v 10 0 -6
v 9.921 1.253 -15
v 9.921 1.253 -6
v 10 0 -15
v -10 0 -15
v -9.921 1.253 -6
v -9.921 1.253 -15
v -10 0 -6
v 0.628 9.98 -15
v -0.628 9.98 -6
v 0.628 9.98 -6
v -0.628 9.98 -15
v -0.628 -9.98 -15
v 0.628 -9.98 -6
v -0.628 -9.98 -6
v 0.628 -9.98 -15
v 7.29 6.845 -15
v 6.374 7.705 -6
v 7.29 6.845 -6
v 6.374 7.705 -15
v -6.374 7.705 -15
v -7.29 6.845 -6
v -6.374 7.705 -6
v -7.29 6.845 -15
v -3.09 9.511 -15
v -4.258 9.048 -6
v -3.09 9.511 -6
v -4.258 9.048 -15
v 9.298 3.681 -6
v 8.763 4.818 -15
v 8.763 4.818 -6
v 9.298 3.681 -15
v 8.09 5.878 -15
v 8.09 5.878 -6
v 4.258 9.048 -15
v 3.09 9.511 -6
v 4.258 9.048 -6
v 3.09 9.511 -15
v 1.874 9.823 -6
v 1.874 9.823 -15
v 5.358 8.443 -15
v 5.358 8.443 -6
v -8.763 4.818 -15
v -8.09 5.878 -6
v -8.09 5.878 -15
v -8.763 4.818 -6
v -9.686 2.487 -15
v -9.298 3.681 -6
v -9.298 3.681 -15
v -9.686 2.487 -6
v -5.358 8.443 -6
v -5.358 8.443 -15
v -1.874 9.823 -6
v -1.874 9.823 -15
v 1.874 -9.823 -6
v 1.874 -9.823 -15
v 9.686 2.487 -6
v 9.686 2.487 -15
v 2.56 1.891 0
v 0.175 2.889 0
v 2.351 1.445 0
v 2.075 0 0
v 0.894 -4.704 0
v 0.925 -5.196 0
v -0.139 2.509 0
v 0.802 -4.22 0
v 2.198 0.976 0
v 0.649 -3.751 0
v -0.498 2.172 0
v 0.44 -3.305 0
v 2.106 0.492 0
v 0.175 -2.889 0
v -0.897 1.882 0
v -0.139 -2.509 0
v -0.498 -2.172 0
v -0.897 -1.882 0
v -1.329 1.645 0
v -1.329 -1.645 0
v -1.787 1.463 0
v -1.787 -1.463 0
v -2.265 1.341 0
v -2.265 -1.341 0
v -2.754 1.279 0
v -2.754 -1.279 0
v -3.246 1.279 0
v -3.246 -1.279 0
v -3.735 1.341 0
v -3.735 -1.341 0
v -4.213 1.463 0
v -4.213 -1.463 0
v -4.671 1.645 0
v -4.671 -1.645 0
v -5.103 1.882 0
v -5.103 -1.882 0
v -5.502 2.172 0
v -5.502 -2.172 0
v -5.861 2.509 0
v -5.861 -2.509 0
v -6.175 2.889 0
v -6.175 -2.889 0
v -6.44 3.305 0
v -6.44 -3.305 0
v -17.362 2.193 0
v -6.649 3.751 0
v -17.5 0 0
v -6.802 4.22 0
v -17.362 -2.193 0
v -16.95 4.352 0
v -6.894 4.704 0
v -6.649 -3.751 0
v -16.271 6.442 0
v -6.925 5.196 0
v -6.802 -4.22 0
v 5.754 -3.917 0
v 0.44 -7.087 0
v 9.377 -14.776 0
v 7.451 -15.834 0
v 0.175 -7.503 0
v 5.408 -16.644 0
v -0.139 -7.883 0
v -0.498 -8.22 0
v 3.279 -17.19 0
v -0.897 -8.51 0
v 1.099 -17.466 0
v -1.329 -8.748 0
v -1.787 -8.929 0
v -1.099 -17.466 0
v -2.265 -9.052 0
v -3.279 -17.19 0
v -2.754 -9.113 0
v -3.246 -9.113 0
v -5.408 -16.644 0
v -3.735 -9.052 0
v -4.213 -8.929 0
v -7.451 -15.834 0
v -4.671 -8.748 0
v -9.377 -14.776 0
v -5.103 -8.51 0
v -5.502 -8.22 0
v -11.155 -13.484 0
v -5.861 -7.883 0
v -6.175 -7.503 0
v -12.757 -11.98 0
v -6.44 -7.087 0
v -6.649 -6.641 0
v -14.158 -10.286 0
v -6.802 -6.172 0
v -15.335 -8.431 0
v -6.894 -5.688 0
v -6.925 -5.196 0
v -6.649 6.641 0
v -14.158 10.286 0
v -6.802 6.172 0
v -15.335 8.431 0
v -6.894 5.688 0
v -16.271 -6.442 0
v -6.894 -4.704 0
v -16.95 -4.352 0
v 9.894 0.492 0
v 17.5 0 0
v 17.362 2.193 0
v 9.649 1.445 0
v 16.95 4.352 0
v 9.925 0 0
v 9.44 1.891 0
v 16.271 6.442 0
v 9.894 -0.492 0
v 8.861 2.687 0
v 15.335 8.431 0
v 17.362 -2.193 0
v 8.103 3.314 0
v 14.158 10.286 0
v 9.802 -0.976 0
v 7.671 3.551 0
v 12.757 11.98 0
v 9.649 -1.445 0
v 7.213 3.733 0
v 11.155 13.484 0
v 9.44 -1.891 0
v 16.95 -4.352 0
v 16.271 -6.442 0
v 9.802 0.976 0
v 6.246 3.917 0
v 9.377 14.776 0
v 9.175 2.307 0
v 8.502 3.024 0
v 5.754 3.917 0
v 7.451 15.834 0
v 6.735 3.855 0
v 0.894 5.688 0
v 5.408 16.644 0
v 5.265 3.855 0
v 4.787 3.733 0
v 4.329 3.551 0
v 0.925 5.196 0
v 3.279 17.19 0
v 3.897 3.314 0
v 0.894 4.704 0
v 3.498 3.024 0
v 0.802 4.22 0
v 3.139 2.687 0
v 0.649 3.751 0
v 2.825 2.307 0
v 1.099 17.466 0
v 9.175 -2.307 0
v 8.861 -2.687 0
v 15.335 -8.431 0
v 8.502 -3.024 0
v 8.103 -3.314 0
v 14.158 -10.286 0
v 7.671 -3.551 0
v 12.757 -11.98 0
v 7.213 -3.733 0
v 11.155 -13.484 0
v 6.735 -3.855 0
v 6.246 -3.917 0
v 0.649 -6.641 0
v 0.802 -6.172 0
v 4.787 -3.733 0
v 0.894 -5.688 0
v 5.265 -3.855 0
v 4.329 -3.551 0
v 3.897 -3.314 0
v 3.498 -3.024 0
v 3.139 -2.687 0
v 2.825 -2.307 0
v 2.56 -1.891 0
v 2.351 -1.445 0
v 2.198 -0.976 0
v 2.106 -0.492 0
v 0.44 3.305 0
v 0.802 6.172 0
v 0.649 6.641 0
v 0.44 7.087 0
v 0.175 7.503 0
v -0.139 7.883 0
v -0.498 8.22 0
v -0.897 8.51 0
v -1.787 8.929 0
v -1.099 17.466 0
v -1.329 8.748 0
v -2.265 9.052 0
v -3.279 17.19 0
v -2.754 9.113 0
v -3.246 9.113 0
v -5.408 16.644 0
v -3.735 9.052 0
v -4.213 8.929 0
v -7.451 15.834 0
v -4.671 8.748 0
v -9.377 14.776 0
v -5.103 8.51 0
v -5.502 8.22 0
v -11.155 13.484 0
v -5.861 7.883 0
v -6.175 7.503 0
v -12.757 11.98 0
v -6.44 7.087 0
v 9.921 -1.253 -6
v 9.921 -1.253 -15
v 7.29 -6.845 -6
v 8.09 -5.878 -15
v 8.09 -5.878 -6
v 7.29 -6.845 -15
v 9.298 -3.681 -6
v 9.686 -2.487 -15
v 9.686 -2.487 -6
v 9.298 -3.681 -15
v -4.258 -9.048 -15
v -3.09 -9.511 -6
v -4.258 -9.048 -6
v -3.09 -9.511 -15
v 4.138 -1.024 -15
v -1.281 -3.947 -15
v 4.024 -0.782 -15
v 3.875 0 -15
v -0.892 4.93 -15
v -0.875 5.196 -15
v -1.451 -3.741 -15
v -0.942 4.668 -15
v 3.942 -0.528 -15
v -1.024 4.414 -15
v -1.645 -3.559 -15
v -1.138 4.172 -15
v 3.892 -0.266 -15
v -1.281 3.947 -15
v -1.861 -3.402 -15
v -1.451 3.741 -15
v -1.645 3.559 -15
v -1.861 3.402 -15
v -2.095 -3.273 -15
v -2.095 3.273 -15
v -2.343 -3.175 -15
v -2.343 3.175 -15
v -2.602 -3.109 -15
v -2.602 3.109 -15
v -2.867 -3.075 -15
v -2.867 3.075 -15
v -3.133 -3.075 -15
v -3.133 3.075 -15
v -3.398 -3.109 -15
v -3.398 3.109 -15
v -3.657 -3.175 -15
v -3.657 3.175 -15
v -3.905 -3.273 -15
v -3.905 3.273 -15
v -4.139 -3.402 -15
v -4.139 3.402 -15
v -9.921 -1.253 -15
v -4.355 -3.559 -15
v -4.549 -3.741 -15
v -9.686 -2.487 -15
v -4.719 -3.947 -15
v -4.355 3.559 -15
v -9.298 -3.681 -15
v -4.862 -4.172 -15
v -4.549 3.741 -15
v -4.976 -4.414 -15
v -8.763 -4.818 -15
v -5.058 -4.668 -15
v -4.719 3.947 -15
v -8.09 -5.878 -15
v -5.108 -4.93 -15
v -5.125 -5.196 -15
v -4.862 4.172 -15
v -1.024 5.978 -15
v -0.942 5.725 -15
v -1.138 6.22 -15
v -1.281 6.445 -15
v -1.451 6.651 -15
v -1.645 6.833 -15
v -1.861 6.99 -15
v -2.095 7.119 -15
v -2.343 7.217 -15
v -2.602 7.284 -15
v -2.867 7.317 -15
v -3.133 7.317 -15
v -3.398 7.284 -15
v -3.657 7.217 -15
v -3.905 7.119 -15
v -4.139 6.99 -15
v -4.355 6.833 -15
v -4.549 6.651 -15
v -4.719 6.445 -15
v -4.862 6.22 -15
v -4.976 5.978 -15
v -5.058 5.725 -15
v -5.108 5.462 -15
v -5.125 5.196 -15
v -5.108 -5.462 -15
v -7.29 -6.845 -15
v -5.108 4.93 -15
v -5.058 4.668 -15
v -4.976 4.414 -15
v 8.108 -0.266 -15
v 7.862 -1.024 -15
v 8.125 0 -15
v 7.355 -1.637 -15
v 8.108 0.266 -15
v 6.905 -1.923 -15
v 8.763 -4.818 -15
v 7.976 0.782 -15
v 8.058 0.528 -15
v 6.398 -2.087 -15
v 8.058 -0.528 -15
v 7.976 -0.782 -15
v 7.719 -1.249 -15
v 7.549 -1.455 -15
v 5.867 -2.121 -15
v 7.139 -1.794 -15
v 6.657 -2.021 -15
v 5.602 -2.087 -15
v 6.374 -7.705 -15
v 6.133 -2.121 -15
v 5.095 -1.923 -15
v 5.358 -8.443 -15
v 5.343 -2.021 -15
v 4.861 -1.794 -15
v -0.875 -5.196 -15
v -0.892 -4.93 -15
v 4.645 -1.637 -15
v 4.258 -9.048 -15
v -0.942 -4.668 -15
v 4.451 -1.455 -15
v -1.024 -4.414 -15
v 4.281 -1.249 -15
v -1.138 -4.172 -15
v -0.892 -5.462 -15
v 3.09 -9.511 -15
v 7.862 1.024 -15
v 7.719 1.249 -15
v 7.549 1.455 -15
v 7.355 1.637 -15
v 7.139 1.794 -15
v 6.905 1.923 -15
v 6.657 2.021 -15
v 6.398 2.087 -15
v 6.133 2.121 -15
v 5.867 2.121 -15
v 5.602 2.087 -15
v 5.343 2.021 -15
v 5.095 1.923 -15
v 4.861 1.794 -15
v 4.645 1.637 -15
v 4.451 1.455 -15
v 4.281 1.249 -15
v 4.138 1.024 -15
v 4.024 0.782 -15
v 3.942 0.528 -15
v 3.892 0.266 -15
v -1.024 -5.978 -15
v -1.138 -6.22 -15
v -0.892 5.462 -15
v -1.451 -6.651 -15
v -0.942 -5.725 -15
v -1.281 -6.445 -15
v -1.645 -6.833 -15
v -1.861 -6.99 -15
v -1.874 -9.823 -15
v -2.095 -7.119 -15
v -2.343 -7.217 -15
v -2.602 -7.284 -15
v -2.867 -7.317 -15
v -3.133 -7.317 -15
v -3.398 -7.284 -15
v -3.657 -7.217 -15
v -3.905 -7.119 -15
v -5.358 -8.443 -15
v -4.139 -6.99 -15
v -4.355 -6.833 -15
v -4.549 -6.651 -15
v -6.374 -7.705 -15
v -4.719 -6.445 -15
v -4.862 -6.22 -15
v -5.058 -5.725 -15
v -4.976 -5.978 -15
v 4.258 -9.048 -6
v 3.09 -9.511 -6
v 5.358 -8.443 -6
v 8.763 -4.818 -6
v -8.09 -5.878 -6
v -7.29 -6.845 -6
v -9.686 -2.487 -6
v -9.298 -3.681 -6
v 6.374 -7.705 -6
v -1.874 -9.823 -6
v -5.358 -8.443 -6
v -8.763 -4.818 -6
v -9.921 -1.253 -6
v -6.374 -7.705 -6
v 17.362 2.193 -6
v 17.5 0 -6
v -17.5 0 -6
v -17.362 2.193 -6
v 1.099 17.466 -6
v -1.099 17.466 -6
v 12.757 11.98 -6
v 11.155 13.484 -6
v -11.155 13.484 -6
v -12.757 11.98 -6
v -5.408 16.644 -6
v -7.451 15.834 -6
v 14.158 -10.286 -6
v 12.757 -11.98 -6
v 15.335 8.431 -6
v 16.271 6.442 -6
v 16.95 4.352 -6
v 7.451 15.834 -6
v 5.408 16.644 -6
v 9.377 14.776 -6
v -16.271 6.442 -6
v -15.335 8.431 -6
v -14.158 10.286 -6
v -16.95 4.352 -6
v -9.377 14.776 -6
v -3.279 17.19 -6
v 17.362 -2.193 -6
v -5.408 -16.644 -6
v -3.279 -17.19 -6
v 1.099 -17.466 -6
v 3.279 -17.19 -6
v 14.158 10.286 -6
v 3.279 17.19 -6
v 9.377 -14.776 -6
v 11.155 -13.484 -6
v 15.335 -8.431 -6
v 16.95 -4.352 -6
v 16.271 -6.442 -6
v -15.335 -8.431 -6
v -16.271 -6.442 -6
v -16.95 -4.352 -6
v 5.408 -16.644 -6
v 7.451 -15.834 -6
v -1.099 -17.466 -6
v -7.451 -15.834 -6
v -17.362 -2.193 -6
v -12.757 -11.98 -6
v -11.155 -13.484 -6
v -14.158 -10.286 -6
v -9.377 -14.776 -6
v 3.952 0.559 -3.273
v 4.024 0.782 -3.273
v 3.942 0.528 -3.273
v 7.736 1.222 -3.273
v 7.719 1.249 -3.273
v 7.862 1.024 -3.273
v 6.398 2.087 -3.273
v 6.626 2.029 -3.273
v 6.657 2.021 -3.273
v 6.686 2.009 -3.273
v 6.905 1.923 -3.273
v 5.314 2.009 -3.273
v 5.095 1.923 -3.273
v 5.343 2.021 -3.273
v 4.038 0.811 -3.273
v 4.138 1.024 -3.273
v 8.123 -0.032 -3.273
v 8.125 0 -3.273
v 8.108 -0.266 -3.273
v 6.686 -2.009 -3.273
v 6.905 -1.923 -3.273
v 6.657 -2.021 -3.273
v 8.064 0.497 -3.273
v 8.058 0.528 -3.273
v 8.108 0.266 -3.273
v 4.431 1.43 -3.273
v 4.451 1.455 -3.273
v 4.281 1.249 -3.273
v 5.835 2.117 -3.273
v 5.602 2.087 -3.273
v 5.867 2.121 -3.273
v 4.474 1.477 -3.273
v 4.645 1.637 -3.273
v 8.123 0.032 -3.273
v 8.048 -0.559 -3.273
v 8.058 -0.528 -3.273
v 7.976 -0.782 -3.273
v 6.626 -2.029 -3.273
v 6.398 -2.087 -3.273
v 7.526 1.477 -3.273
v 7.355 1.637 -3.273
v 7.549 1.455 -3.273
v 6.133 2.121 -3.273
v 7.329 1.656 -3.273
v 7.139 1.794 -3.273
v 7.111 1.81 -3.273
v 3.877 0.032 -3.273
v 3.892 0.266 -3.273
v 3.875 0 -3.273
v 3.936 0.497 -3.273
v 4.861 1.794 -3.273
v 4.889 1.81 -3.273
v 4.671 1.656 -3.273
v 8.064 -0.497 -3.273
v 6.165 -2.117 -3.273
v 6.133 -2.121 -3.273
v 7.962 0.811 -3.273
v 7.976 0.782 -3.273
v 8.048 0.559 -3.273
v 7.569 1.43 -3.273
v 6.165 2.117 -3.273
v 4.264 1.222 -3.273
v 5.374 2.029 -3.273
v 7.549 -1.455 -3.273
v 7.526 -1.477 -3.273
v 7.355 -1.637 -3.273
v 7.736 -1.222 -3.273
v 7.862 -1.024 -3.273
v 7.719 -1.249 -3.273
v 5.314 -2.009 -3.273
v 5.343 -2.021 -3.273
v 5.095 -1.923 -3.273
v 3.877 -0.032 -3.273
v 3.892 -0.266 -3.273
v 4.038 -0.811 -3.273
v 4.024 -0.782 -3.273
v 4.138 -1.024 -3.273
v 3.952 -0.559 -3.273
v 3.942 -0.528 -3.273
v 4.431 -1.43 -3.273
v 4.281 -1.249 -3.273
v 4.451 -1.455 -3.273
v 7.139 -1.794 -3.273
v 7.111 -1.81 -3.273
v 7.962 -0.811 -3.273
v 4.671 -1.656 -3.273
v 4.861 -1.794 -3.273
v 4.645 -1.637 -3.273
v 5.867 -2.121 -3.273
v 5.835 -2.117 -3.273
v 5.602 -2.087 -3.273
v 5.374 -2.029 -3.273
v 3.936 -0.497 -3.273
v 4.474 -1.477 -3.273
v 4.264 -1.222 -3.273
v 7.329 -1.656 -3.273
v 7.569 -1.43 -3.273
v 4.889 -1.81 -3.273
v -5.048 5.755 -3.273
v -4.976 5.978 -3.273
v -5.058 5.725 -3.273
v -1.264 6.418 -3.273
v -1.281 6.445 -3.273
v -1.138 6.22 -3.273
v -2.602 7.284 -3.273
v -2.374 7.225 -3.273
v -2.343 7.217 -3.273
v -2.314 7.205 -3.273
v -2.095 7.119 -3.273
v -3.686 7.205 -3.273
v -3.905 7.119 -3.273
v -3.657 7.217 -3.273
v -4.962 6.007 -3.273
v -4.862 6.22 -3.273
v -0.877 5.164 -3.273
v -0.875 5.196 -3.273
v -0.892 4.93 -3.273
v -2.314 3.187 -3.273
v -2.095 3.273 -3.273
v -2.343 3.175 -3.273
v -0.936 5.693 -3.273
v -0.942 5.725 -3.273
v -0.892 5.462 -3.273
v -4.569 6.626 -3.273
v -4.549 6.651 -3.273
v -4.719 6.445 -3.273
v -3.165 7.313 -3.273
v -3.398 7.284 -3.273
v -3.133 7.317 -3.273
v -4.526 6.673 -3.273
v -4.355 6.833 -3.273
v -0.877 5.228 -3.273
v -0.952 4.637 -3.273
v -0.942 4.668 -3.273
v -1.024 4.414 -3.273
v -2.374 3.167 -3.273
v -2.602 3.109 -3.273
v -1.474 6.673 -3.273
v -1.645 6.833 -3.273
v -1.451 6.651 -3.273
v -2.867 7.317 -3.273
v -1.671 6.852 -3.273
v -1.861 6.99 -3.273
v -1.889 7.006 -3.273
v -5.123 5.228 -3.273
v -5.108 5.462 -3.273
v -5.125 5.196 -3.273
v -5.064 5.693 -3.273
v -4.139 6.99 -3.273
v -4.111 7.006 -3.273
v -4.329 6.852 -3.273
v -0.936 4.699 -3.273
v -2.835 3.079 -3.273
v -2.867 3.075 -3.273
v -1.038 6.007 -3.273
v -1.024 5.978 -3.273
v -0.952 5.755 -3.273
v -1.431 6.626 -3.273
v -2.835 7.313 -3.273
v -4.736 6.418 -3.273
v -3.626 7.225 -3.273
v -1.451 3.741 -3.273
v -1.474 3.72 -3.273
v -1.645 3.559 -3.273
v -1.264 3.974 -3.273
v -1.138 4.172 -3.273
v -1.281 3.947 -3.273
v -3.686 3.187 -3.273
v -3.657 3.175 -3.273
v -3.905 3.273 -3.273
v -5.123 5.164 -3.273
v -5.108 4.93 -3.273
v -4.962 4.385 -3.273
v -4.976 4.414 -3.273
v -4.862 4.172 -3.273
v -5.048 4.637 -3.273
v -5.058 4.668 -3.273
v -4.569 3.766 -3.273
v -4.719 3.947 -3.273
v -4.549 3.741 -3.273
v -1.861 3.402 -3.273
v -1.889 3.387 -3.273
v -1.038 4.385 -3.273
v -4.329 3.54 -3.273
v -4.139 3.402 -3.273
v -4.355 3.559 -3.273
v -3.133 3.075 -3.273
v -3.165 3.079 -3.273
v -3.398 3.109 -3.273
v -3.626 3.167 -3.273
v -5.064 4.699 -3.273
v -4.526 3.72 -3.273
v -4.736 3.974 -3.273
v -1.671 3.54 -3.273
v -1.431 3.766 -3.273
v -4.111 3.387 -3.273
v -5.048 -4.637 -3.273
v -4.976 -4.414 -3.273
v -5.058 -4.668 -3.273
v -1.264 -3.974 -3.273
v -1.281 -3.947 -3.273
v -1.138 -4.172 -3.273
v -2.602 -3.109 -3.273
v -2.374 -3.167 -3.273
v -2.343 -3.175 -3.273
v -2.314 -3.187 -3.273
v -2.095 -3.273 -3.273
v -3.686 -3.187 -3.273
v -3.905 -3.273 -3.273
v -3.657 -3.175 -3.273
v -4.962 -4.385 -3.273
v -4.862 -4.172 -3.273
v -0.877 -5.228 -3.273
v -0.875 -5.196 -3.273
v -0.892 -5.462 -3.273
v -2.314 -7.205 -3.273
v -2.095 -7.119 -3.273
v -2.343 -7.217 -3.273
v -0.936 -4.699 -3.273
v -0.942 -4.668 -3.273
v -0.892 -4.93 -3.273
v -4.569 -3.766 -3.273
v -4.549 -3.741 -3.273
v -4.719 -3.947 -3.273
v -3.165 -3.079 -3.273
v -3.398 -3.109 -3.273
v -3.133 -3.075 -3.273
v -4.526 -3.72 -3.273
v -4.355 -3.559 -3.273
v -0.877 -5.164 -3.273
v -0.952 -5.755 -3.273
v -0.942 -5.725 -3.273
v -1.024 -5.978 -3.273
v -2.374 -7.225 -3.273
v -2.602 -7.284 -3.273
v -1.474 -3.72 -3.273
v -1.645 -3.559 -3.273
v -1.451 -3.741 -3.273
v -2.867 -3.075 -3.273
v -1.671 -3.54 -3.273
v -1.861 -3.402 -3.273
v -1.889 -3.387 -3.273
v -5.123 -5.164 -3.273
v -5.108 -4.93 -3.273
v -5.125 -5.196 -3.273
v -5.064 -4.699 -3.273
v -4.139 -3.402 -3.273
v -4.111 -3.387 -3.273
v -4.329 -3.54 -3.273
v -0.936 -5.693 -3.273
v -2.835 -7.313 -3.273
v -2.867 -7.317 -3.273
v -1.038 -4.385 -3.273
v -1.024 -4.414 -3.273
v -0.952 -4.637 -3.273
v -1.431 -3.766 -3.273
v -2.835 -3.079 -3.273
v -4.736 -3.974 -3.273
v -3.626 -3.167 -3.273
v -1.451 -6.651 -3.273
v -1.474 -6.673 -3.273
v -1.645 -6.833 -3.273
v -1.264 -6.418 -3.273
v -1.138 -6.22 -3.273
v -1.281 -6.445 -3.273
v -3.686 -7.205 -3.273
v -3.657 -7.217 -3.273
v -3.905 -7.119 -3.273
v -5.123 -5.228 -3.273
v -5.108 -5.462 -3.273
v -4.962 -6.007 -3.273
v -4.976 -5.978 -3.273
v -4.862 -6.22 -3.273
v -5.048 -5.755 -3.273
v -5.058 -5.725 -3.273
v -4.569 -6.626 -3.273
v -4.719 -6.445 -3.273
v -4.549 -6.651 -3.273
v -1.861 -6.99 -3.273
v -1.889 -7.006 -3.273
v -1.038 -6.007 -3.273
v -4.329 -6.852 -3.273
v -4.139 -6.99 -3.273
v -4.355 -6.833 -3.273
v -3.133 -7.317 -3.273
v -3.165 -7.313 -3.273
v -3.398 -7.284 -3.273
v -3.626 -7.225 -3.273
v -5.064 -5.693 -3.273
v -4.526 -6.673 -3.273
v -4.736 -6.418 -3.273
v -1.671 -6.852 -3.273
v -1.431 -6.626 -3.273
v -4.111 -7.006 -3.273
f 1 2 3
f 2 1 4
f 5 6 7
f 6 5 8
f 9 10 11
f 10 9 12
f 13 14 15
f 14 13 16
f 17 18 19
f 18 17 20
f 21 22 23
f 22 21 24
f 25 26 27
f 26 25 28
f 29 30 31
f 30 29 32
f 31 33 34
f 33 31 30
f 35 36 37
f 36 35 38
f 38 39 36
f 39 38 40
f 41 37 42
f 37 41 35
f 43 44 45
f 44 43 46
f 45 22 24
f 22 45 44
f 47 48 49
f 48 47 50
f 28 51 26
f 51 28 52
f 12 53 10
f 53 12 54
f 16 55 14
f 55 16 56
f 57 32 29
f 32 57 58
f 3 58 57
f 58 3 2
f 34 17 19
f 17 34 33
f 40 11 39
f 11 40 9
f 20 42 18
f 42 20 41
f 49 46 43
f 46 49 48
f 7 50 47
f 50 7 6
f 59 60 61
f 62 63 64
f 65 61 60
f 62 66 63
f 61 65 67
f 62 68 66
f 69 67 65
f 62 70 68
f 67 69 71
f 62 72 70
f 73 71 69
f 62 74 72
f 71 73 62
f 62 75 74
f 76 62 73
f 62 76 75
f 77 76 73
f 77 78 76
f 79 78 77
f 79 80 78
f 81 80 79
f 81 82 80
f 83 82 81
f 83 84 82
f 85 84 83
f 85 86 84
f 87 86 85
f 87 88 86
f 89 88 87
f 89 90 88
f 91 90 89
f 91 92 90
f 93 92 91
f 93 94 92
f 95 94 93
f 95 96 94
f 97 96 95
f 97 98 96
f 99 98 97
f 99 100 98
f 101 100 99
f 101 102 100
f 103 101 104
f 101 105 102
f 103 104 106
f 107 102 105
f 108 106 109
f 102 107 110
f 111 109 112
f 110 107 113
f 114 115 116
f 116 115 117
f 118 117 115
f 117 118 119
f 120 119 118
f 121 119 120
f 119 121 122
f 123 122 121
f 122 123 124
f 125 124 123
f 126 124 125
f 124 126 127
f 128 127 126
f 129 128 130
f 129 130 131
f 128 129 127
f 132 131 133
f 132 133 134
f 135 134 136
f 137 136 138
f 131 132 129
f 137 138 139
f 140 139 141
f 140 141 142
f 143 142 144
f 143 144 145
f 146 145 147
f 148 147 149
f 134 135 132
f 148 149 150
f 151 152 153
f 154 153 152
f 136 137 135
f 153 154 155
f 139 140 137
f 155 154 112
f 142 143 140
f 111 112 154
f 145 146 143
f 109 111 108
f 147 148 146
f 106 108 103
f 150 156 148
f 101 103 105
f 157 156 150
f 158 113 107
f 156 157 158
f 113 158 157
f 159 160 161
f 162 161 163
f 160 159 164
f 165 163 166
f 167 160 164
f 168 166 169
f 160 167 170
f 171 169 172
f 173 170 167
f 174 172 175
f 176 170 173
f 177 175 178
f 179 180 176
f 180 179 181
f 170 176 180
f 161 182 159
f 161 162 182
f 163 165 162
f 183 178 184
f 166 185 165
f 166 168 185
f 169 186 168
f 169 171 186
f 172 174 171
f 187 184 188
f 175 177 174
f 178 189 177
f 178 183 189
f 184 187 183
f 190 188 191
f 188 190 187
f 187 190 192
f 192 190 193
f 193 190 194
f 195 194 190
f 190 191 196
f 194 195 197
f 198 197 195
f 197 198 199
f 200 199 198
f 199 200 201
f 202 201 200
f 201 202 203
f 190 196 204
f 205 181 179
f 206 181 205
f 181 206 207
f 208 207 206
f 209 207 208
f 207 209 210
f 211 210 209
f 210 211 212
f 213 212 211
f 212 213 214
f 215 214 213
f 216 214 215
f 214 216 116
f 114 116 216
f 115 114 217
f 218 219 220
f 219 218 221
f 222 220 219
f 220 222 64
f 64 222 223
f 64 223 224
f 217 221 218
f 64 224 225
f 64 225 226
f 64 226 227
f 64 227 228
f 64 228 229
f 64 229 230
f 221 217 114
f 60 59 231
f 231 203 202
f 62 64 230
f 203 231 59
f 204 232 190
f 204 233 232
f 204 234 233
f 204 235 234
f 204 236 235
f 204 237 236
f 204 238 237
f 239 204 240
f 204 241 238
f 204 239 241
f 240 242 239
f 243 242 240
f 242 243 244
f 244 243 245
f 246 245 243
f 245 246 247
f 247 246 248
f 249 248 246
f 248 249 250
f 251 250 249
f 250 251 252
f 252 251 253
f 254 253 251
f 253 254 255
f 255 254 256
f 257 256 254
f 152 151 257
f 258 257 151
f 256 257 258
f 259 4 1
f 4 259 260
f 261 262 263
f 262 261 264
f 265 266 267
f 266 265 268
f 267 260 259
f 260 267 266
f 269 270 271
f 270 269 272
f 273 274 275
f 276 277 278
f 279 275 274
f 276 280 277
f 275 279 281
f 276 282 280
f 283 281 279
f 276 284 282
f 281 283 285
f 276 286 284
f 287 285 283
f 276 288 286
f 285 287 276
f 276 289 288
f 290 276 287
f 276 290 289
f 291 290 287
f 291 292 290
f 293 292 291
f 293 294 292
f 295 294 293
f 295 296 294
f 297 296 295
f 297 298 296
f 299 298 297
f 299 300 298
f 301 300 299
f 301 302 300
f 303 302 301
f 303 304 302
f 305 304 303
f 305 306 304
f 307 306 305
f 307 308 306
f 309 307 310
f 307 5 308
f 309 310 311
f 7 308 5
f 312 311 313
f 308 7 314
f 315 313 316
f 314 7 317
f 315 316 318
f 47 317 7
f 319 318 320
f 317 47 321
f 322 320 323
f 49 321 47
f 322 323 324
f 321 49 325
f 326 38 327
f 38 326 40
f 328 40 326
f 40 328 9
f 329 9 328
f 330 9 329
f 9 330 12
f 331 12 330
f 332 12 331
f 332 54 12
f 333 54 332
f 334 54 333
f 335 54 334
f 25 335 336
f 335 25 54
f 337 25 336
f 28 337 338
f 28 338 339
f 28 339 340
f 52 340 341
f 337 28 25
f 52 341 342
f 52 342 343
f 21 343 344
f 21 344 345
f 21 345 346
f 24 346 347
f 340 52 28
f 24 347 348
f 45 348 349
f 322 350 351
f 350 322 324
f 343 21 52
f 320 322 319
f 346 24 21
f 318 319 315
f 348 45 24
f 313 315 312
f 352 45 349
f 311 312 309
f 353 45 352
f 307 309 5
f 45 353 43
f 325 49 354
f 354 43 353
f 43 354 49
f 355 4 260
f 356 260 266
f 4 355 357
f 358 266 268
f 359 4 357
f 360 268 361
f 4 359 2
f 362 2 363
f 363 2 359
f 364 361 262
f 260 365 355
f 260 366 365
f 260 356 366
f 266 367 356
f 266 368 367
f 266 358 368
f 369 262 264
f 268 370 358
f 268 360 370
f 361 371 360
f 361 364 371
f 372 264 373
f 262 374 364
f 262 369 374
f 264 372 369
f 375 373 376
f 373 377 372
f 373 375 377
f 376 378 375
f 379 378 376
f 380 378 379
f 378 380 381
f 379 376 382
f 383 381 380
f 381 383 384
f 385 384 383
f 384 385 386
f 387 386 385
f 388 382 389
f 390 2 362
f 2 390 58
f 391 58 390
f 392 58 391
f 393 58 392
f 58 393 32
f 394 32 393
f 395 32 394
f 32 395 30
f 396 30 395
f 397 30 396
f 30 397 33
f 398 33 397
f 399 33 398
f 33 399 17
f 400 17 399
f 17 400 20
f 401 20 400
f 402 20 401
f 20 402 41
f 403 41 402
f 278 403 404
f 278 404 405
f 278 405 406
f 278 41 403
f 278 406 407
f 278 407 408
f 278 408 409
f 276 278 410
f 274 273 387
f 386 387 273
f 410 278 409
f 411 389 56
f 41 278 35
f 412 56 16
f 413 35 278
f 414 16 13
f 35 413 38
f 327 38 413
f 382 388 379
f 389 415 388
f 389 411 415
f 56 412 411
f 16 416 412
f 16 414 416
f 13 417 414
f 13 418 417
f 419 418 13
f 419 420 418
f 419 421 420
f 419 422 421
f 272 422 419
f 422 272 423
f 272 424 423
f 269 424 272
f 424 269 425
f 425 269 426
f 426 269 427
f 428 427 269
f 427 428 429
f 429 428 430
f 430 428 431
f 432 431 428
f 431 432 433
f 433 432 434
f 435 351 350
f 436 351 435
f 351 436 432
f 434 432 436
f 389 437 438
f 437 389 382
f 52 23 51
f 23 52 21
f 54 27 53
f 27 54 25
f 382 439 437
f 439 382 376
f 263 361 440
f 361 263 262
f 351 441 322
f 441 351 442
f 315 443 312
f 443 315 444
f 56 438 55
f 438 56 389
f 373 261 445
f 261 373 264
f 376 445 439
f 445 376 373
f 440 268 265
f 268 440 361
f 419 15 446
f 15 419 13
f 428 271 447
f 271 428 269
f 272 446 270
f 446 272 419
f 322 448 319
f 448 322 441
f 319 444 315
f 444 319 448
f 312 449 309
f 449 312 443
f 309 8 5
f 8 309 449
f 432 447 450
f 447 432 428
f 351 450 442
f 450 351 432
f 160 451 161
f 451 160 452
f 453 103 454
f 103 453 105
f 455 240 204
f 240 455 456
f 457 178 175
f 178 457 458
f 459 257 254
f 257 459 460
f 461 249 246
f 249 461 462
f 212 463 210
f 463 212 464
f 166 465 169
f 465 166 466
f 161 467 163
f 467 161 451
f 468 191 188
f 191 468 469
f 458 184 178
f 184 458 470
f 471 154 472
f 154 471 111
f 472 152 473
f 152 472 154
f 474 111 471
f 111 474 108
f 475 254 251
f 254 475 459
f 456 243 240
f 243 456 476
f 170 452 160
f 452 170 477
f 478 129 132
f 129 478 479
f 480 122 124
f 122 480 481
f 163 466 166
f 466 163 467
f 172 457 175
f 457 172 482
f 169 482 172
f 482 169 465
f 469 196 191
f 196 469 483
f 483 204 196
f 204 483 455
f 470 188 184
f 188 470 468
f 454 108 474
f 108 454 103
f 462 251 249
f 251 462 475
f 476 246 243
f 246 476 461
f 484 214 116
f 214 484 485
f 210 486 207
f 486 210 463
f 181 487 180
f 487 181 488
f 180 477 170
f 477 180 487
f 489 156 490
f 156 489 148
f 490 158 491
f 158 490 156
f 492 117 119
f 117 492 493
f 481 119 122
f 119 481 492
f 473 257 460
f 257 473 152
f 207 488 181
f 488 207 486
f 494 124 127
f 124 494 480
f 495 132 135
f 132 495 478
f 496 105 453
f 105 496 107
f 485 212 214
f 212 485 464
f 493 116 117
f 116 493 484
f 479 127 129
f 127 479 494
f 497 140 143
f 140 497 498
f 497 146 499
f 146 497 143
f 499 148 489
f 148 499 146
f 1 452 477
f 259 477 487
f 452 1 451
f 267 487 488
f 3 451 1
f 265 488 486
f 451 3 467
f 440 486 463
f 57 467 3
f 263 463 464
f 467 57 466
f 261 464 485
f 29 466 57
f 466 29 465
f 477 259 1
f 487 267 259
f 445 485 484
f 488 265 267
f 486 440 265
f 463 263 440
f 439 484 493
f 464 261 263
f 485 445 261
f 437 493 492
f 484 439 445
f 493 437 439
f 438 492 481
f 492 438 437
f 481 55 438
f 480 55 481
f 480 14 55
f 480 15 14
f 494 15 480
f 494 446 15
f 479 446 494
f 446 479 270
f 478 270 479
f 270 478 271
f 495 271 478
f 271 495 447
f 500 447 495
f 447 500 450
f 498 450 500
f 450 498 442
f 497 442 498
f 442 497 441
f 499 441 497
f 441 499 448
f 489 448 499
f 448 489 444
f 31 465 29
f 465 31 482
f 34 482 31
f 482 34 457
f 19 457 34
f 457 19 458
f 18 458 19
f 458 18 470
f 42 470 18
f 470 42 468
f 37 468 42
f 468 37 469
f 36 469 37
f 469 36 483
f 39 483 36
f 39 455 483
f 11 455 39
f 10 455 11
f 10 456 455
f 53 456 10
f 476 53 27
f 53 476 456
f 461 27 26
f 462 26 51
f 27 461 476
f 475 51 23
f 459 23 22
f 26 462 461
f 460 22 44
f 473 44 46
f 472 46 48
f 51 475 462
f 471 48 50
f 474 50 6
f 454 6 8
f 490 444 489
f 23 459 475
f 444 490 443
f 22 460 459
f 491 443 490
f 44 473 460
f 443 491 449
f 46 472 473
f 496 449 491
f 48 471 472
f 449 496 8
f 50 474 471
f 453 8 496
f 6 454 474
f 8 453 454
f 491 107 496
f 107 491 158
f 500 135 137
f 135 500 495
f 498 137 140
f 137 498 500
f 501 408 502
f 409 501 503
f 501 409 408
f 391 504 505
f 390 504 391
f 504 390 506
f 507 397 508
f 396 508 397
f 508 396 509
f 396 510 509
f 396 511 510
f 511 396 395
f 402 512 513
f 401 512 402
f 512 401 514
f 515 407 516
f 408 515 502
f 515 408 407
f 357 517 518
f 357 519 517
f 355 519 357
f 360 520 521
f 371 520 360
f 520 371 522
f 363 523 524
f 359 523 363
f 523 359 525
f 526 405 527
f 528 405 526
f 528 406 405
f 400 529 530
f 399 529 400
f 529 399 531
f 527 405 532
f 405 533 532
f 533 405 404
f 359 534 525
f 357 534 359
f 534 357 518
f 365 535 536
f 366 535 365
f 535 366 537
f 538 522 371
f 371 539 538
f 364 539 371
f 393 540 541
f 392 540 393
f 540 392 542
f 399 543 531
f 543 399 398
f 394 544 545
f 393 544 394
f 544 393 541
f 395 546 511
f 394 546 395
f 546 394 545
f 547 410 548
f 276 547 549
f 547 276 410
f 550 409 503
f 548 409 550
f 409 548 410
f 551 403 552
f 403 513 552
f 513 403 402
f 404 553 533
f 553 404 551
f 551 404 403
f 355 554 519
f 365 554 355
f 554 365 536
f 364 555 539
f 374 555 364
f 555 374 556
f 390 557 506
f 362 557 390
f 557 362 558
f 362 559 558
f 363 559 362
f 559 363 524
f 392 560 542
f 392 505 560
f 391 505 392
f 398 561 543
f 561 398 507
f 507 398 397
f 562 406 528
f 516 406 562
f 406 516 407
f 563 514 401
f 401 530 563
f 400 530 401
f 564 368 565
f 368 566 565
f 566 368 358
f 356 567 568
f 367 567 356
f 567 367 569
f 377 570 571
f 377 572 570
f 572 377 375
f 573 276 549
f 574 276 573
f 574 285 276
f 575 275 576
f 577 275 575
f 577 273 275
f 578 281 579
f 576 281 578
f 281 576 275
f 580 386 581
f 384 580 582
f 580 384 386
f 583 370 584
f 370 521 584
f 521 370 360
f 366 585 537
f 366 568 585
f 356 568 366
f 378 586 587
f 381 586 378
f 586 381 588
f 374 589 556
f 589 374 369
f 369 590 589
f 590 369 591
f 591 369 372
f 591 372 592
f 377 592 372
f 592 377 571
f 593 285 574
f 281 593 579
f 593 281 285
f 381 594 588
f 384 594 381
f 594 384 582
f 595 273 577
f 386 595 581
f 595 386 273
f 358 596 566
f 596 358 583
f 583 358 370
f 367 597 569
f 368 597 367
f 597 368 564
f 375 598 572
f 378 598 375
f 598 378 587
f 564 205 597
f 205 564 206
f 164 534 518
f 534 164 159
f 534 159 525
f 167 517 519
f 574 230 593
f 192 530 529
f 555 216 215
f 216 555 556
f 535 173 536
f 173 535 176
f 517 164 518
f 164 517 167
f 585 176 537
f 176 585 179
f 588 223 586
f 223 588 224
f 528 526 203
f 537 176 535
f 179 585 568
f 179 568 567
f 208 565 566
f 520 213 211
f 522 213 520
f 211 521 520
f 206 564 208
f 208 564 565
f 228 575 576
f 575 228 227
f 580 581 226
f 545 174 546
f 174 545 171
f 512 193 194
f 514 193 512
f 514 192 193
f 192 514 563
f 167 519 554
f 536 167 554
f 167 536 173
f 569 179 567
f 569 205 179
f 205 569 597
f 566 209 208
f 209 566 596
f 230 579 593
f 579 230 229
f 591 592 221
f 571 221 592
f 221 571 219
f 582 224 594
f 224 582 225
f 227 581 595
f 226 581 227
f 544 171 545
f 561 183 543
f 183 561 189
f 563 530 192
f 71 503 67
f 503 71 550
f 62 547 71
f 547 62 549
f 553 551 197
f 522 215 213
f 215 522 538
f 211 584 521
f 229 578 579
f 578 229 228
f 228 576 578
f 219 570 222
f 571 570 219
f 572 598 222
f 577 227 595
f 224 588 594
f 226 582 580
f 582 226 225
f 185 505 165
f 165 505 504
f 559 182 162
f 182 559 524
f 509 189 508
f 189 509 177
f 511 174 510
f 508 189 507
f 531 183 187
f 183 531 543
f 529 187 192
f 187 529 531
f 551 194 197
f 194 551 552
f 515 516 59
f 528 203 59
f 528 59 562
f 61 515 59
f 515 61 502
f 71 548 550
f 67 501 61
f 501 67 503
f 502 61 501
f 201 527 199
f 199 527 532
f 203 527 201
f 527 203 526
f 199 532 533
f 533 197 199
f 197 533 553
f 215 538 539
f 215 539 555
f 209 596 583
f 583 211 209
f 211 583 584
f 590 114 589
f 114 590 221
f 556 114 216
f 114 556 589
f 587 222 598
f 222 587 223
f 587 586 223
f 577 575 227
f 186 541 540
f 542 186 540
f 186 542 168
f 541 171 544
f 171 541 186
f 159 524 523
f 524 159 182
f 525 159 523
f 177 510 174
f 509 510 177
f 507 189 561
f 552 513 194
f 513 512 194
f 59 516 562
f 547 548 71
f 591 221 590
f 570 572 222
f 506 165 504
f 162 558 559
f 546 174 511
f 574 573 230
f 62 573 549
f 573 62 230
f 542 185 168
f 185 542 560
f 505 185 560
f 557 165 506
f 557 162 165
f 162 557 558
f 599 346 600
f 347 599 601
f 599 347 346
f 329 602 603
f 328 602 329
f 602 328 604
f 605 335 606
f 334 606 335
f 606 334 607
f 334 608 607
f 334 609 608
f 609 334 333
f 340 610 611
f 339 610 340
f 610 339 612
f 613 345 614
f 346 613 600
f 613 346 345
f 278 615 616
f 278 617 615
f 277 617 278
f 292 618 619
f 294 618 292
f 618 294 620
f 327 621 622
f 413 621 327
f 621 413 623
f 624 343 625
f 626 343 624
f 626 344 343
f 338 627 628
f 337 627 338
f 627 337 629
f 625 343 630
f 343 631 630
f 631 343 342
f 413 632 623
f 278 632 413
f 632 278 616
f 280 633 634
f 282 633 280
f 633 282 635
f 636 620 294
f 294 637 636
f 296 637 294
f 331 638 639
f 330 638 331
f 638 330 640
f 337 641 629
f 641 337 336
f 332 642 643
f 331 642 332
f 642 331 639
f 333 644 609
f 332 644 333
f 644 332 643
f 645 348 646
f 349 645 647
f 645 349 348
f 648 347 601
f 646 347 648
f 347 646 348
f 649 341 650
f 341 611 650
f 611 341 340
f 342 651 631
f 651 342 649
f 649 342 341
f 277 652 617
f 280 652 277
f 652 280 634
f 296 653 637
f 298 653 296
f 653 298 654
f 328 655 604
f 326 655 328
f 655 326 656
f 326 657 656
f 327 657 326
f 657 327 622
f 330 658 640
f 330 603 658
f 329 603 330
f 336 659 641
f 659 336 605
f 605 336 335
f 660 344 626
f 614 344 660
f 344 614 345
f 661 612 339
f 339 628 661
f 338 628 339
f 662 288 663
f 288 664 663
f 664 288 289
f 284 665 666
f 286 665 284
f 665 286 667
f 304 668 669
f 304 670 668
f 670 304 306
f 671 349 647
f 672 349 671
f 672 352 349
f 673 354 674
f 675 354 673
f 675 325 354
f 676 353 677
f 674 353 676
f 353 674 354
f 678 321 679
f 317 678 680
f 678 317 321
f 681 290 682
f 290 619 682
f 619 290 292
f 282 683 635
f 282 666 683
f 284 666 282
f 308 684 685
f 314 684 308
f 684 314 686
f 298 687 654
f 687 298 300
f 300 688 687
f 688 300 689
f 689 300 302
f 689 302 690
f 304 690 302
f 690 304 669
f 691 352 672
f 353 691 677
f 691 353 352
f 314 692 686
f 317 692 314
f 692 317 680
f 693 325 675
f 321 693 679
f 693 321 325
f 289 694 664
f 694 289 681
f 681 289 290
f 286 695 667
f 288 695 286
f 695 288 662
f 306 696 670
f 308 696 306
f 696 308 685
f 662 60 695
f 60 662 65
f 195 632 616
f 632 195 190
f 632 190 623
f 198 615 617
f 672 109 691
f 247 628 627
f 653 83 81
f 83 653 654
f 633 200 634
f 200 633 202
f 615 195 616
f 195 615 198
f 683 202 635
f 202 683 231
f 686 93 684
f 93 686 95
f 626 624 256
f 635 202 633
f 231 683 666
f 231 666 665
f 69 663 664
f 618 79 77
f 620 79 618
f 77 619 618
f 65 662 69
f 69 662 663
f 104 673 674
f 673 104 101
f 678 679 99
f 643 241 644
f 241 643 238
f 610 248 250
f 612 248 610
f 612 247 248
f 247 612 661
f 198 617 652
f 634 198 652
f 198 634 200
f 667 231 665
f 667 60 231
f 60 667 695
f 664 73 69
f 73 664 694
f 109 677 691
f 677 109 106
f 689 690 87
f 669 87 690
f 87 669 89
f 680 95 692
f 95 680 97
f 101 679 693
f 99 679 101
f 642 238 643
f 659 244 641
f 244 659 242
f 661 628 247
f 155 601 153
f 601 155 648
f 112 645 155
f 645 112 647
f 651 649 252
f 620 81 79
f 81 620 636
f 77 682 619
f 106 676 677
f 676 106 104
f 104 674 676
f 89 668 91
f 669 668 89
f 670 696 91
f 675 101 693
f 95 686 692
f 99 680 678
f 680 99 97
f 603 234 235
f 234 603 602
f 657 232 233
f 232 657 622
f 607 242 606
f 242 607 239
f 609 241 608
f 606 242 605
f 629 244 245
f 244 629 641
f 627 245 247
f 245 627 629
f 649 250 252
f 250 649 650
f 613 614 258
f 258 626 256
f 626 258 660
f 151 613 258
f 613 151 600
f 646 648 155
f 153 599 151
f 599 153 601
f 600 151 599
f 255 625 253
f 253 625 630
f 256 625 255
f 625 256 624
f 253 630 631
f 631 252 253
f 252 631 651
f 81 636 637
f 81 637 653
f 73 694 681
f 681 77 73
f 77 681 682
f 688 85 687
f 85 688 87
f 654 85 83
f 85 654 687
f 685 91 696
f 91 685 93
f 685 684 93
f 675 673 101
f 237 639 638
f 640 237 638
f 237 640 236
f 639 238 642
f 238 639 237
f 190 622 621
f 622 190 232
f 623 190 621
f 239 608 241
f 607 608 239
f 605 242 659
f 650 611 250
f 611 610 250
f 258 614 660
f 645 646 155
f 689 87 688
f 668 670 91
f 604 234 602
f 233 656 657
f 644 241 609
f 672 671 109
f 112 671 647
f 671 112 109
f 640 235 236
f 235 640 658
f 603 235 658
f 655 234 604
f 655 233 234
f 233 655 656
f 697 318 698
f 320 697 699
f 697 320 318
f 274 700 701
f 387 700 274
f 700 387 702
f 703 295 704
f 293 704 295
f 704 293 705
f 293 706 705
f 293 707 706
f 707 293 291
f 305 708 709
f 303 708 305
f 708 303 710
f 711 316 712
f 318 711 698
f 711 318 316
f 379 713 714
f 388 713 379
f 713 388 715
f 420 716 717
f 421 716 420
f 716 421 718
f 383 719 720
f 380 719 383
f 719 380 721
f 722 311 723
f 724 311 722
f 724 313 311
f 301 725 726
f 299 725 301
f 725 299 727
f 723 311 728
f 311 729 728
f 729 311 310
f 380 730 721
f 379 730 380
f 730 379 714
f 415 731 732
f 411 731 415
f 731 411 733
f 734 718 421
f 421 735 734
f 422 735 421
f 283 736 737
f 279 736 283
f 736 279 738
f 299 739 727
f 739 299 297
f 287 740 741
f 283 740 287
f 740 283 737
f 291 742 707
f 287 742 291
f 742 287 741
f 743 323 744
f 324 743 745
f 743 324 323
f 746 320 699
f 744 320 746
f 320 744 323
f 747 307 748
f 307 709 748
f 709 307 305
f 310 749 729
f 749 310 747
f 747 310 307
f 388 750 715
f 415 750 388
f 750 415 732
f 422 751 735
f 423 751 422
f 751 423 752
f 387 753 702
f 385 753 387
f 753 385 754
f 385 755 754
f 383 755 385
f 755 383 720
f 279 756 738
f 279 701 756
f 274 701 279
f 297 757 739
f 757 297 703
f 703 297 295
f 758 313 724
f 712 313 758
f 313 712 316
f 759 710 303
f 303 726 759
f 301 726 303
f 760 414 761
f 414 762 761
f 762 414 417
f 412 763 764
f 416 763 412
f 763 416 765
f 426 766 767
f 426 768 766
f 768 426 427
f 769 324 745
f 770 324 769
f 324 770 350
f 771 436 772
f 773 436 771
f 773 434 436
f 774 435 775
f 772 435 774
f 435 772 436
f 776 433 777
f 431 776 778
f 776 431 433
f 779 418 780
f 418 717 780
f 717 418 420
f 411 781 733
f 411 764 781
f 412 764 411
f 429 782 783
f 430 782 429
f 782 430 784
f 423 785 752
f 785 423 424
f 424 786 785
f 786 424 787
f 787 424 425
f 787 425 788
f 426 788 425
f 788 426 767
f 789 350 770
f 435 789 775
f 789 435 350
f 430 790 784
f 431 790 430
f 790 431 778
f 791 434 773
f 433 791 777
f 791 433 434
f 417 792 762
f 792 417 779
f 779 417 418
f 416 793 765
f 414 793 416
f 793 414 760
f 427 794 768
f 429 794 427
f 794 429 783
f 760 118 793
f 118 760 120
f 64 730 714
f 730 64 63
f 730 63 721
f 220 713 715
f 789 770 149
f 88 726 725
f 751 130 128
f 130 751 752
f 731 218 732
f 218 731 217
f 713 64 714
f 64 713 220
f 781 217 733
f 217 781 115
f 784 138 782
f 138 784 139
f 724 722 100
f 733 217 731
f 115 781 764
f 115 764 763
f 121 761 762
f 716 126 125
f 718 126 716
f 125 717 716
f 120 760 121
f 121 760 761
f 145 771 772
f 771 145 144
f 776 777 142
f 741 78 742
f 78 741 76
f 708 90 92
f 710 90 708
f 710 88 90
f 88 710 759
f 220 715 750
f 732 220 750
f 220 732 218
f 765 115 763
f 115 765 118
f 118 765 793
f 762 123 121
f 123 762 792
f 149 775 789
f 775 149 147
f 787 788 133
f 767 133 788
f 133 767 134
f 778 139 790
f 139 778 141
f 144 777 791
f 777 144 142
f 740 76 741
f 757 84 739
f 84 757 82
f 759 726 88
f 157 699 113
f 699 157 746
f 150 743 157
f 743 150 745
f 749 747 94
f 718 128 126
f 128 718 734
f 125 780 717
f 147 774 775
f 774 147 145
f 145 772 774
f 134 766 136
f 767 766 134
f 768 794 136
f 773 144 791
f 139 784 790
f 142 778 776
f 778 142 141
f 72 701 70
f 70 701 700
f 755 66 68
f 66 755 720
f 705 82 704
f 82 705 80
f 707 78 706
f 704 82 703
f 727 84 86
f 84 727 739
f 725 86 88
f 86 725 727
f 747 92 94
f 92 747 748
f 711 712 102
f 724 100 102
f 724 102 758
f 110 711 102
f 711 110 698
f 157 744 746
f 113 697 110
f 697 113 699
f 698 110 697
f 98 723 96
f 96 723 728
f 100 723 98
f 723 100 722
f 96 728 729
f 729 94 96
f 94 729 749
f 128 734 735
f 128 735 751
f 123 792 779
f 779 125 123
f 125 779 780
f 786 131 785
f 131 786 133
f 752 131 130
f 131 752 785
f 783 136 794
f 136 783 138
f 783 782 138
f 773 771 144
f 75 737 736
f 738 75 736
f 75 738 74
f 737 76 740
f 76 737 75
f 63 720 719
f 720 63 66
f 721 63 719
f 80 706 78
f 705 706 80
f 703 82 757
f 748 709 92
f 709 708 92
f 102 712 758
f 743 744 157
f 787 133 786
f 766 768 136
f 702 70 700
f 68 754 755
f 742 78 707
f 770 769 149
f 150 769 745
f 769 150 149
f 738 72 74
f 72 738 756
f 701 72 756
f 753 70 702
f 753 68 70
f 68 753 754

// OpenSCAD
$fn = 50;


difference() {
	union() {
		translate(v = [0, 0, -15.0000000000]) {
			cylinder(h = 15, r = 10.0000000000);
		}
		translate(v = [0, 0, -6.0000000000]) {
			cylinder(h = 6, r = 17.5000000000);
		}
	}
	union() {
		translate(v = [6.0000000000, 0.0000000000, 0]) {
			rotate(a = [0, 0, 0]) {
				difference() {
					union() {
						#translate(v = [0, 0, -15.0000000000]) {
							cylinder(h = 15, r = 2.0000000000);
						}
						#translate(v = [0, 0, -15.0000000000]) {
							cylinder(h = 15, r = 2.1250000000);
						}
						#translate(v = [0, 0, -3.5000000000]) {
							cylinder(h = 3.5000000000, r = 10.0000000000, r1 = 2.0000000000, r2 = 3.9250000000);
						}
						#translate(v = [0, 0, -15.0000000000]) {
							cylinder(h = 15, r = 2.0000000000);
						}
					}
					union();
				}
			}
		}
		translate(v = [-3.0000000000, 5.1961524227, 0]) {
			rotate(a = [0, 0, 0]) {
				difference() {
					union() {
						#translate(v = [0, 0, -15.0000000000]) {
							cylinder(h = 15, r = 2.0000000000);
						}
						#translate(v = [0, 0, -15.0000000000]) {
							cylinder(h = 15, r = 2.1250000000);
						}
						#translate(v = [0, 0, -3.5000000000]) {
							cylinder(h = 3.5000000000, r = 10.0000000000, r1 = 2.0000000000, r2 = 3.9250000000);
						}
						#translate(v = [0, 0, -15.0000000000]) {
							cylinder(h = 15, r = 2.0000000000);
						}
					}
					union();
				}
			}
		}
		translate(v = [-3.0000000000, -5.1961524227, 0]) {
			rotate(a = [0, 0, 0]) {
				difference() {
					union() {
						#translate(v = [0, 0, -15.0000000000]) {
							cylinder(h = 15, r = 2.0000000000);
						}
						#translate(v = [0, 0, -15.0000000000]) {
							cylinder(h = 15, r = 2.1250000000);
						}
						#translate(v = [0, 0, -3.5000000000]) {
							cylinder(h = 3.5000000000, r = 10.0000000000, r1 = 2.0000000000, r2 = 3.9250000000);
						}
						#translate(v = [0, 0, -15.0000000000]) {
							cylinder(h = 15, r = 2.0000000000);
						}
					}
					union();
				}
			}
		}
	}
}
